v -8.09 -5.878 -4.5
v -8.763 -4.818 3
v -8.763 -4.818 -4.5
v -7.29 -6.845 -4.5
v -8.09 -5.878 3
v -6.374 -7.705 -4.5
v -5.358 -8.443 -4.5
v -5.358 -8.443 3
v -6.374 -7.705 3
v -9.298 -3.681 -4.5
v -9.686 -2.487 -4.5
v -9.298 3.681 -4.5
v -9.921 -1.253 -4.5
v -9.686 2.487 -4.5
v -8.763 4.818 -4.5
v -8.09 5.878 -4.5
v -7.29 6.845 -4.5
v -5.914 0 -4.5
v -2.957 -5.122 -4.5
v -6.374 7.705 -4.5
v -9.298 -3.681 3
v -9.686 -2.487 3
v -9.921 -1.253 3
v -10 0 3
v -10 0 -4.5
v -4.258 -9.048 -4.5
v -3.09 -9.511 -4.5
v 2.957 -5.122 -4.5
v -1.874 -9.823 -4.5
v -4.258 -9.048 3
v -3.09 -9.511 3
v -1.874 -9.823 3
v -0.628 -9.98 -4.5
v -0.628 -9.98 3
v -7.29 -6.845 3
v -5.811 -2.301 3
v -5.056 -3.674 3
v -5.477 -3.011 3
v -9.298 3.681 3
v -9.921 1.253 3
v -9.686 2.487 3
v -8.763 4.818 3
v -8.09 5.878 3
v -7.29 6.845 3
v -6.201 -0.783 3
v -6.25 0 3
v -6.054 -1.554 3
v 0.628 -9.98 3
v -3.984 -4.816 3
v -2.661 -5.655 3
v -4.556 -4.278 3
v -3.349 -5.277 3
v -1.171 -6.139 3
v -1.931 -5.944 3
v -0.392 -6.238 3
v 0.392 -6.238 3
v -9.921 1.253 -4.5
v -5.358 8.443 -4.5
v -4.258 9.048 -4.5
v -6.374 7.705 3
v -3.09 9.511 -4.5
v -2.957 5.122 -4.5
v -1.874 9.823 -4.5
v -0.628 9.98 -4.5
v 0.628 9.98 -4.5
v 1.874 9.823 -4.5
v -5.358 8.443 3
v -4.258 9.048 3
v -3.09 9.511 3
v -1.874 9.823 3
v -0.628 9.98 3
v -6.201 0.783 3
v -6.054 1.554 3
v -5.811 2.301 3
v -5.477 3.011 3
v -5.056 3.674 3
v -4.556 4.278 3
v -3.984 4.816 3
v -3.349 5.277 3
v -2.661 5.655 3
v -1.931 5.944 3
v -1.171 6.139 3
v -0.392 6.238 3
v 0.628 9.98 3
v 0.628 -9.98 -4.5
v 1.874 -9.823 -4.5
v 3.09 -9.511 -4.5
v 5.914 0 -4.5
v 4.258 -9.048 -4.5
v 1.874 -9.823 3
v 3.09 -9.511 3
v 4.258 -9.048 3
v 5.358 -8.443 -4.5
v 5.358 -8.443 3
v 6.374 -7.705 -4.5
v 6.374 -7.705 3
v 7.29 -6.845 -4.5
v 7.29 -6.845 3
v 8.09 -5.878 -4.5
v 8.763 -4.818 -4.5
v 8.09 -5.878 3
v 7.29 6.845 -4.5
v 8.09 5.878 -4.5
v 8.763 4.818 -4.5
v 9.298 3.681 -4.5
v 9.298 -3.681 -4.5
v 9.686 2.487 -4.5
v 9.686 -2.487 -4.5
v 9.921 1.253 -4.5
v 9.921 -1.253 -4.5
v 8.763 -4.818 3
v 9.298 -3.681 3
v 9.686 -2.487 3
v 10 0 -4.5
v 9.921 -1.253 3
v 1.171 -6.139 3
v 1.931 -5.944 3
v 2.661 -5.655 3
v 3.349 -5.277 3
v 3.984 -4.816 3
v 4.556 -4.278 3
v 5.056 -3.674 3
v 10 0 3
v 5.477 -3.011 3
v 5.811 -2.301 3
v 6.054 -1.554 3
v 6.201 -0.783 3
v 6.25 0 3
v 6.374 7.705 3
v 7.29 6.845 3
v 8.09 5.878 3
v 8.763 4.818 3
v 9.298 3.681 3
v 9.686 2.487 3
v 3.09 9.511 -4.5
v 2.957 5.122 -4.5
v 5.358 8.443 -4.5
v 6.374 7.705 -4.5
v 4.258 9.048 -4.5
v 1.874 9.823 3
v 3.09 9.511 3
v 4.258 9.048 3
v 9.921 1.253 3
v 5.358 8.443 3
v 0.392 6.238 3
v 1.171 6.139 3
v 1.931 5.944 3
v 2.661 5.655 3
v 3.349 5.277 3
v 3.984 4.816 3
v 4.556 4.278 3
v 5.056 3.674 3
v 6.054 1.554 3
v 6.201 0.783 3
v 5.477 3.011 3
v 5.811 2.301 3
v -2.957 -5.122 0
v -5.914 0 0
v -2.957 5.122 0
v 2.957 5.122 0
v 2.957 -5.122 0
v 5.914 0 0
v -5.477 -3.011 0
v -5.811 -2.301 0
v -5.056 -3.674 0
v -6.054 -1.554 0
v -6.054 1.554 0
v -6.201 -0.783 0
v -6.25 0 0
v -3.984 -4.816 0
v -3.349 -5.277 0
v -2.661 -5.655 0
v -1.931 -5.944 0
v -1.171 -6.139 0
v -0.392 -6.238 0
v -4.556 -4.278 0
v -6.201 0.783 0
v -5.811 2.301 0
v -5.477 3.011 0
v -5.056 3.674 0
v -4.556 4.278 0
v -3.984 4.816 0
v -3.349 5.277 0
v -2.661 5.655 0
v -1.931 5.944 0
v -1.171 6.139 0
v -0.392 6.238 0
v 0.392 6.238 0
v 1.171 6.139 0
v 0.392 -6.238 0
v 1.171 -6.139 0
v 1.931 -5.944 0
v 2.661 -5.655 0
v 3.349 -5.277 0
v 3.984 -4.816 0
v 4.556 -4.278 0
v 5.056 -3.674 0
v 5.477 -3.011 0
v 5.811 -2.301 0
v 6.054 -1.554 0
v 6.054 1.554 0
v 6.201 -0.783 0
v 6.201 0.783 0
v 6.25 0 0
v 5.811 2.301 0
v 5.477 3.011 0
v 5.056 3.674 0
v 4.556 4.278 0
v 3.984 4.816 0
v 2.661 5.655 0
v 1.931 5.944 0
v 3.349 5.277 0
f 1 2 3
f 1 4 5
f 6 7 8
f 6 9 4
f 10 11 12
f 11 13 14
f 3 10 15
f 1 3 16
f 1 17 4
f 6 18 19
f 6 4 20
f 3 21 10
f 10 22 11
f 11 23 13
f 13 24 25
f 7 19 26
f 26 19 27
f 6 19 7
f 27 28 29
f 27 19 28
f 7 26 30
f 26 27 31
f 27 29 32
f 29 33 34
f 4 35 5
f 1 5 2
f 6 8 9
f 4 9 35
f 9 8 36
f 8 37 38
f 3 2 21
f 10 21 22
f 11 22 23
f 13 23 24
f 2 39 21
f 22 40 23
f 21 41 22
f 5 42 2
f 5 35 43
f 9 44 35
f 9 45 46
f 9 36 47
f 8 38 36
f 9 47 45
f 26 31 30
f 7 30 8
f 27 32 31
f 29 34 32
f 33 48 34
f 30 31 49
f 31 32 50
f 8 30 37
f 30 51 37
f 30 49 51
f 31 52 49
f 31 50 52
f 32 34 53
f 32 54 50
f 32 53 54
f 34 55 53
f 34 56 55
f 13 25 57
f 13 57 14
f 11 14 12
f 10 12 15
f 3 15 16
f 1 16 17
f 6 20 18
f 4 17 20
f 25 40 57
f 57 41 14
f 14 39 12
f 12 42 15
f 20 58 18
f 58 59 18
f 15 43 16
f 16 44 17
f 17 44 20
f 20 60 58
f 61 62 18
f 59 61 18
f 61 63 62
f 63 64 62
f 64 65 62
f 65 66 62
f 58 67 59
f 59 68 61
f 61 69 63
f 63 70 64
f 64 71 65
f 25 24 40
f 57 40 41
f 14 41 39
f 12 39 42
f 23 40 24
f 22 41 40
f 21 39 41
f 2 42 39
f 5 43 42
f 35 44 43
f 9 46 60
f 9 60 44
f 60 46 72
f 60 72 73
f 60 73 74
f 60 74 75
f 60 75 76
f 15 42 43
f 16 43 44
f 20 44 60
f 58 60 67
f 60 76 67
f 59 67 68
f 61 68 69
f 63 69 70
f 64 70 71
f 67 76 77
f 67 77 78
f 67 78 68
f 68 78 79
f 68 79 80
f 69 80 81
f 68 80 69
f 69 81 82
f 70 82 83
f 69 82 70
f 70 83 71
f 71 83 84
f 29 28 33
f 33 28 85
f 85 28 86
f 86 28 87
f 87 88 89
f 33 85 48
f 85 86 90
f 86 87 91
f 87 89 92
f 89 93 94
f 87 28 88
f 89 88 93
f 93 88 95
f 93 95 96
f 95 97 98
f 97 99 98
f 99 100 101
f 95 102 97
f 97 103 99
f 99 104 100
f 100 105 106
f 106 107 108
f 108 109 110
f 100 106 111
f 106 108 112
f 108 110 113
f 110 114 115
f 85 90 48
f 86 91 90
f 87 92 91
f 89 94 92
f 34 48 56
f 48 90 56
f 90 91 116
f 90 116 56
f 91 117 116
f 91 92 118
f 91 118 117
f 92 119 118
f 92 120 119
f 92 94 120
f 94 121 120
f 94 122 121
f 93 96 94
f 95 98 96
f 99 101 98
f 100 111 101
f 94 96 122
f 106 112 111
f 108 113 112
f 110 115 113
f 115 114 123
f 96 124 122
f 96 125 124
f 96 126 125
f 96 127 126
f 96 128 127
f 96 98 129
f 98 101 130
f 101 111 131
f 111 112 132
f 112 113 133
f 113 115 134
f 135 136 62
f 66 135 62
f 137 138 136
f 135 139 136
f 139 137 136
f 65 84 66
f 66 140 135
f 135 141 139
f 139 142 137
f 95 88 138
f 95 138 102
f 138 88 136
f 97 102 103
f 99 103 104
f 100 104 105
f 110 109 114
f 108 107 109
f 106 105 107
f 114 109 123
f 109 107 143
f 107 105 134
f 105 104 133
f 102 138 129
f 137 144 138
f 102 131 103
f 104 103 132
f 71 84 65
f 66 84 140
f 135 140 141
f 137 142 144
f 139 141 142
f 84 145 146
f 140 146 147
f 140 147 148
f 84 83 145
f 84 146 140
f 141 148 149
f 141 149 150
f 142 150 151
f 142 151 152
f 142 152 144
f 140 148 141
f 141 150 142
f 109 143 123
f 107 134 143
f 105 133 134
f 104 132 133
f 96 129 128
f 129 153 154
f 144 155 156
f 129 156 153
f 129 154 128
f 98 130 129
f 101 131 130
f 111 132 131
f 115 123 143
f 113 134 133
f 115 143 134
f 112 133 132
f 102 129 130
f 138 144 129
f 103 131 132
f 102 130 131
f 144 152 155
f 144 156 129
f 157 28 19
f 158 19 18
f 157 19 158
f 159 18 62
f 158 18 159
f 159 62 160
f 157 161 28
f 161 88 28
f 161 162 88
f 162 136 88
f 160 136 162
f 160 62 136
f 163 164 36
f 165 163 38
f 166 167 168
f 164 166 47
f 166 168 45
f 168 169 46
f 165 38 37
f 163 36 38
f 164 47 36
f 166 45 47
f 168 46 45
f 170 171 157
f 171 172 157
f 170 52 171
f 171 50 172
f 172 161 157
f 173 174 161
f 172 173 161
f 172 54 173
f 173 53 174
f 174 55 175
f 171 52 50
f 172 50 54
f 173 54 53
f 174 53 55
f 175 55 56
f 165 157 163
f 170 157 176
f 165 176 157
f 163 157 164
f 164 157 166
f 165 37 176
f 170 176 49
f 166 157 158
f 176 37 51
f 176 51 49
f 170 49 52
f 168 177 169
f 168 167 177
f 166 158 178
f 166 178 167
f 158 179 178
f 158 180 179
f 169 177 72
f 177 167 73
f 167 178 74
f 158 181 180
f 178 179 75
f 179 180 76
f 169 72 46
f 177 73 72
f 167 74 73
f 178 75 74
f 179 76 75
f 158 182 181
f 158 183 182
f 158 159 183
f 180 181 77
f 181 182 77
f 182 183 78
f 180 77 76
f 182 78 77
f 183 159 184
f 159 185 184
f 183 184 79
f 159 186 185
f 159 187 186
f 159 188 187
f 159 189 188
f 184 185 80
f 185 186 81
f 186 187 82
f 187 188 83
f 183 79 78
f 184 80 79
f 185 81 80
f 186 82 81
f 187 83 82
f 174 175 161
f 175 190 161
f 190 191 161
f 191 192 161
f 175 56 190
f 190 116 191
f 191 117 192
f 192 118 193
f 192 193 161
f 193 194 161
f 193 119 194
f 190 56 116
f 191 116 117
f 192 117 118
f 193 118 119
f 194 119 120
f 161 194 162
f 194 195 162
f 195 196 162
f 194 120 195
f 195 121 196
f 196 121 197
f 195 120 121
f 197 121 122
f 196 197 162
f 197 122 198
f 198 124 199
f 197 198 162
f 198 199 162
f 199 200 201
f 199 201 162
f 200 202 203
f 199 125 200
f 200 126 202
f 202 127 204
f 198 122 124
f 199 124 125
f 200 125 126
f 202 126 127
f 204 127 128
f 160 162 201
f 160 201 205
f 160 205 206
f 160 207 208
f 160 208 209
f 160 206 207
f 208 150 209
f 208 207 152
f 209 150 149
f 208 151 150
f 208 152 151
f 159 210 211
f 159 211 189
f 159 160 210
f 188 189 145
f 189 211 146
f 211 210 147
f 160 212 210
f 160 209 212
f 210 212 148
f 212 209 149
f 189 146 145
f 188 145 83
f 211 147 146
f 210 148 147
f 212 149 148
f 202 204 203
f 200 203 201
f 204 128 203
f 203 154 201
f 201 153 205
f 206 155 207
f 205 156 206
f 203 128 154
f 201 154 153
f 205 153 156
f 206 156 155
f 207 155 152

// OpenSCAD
$fn = 50;

difference() {
	union() {
		translate(v = [0, 0, -4.5]) {
			cylinder(h = 7.5, r = 10.0);
		}
		#translate(v = [0, 0, -6.0]) {
			cylinder(h = 6, r = 2.875);
		}
	}
	union() {
		translate(v = [0, 0, 0]) {
			rotate(a = [0, 0, 0]) {
				difference() {
					union() {
						translate(v = [0, 0, -5]) {
							linear_extrude(height = 5) {
								polygon(points = [[5.914249999999999, 0.0], [2.957125, 5.1218907443321156], [-2.9571249999999982, 5.1218907443321156], [-5.914249999999999, 7.242867331857232e-16], [-2.9571250000000022, -5.121890744332115], [2.9571249999999956, -5.121890744332118]]);
							}
						}
					}
					union();
				}
			}
		}
		#cylinder(h = 3, r = 6.25);
		#translate(v = [0, 0, -100.0]) {
			cylinder(h = 200, r = 3.25);
		}
	}
}
